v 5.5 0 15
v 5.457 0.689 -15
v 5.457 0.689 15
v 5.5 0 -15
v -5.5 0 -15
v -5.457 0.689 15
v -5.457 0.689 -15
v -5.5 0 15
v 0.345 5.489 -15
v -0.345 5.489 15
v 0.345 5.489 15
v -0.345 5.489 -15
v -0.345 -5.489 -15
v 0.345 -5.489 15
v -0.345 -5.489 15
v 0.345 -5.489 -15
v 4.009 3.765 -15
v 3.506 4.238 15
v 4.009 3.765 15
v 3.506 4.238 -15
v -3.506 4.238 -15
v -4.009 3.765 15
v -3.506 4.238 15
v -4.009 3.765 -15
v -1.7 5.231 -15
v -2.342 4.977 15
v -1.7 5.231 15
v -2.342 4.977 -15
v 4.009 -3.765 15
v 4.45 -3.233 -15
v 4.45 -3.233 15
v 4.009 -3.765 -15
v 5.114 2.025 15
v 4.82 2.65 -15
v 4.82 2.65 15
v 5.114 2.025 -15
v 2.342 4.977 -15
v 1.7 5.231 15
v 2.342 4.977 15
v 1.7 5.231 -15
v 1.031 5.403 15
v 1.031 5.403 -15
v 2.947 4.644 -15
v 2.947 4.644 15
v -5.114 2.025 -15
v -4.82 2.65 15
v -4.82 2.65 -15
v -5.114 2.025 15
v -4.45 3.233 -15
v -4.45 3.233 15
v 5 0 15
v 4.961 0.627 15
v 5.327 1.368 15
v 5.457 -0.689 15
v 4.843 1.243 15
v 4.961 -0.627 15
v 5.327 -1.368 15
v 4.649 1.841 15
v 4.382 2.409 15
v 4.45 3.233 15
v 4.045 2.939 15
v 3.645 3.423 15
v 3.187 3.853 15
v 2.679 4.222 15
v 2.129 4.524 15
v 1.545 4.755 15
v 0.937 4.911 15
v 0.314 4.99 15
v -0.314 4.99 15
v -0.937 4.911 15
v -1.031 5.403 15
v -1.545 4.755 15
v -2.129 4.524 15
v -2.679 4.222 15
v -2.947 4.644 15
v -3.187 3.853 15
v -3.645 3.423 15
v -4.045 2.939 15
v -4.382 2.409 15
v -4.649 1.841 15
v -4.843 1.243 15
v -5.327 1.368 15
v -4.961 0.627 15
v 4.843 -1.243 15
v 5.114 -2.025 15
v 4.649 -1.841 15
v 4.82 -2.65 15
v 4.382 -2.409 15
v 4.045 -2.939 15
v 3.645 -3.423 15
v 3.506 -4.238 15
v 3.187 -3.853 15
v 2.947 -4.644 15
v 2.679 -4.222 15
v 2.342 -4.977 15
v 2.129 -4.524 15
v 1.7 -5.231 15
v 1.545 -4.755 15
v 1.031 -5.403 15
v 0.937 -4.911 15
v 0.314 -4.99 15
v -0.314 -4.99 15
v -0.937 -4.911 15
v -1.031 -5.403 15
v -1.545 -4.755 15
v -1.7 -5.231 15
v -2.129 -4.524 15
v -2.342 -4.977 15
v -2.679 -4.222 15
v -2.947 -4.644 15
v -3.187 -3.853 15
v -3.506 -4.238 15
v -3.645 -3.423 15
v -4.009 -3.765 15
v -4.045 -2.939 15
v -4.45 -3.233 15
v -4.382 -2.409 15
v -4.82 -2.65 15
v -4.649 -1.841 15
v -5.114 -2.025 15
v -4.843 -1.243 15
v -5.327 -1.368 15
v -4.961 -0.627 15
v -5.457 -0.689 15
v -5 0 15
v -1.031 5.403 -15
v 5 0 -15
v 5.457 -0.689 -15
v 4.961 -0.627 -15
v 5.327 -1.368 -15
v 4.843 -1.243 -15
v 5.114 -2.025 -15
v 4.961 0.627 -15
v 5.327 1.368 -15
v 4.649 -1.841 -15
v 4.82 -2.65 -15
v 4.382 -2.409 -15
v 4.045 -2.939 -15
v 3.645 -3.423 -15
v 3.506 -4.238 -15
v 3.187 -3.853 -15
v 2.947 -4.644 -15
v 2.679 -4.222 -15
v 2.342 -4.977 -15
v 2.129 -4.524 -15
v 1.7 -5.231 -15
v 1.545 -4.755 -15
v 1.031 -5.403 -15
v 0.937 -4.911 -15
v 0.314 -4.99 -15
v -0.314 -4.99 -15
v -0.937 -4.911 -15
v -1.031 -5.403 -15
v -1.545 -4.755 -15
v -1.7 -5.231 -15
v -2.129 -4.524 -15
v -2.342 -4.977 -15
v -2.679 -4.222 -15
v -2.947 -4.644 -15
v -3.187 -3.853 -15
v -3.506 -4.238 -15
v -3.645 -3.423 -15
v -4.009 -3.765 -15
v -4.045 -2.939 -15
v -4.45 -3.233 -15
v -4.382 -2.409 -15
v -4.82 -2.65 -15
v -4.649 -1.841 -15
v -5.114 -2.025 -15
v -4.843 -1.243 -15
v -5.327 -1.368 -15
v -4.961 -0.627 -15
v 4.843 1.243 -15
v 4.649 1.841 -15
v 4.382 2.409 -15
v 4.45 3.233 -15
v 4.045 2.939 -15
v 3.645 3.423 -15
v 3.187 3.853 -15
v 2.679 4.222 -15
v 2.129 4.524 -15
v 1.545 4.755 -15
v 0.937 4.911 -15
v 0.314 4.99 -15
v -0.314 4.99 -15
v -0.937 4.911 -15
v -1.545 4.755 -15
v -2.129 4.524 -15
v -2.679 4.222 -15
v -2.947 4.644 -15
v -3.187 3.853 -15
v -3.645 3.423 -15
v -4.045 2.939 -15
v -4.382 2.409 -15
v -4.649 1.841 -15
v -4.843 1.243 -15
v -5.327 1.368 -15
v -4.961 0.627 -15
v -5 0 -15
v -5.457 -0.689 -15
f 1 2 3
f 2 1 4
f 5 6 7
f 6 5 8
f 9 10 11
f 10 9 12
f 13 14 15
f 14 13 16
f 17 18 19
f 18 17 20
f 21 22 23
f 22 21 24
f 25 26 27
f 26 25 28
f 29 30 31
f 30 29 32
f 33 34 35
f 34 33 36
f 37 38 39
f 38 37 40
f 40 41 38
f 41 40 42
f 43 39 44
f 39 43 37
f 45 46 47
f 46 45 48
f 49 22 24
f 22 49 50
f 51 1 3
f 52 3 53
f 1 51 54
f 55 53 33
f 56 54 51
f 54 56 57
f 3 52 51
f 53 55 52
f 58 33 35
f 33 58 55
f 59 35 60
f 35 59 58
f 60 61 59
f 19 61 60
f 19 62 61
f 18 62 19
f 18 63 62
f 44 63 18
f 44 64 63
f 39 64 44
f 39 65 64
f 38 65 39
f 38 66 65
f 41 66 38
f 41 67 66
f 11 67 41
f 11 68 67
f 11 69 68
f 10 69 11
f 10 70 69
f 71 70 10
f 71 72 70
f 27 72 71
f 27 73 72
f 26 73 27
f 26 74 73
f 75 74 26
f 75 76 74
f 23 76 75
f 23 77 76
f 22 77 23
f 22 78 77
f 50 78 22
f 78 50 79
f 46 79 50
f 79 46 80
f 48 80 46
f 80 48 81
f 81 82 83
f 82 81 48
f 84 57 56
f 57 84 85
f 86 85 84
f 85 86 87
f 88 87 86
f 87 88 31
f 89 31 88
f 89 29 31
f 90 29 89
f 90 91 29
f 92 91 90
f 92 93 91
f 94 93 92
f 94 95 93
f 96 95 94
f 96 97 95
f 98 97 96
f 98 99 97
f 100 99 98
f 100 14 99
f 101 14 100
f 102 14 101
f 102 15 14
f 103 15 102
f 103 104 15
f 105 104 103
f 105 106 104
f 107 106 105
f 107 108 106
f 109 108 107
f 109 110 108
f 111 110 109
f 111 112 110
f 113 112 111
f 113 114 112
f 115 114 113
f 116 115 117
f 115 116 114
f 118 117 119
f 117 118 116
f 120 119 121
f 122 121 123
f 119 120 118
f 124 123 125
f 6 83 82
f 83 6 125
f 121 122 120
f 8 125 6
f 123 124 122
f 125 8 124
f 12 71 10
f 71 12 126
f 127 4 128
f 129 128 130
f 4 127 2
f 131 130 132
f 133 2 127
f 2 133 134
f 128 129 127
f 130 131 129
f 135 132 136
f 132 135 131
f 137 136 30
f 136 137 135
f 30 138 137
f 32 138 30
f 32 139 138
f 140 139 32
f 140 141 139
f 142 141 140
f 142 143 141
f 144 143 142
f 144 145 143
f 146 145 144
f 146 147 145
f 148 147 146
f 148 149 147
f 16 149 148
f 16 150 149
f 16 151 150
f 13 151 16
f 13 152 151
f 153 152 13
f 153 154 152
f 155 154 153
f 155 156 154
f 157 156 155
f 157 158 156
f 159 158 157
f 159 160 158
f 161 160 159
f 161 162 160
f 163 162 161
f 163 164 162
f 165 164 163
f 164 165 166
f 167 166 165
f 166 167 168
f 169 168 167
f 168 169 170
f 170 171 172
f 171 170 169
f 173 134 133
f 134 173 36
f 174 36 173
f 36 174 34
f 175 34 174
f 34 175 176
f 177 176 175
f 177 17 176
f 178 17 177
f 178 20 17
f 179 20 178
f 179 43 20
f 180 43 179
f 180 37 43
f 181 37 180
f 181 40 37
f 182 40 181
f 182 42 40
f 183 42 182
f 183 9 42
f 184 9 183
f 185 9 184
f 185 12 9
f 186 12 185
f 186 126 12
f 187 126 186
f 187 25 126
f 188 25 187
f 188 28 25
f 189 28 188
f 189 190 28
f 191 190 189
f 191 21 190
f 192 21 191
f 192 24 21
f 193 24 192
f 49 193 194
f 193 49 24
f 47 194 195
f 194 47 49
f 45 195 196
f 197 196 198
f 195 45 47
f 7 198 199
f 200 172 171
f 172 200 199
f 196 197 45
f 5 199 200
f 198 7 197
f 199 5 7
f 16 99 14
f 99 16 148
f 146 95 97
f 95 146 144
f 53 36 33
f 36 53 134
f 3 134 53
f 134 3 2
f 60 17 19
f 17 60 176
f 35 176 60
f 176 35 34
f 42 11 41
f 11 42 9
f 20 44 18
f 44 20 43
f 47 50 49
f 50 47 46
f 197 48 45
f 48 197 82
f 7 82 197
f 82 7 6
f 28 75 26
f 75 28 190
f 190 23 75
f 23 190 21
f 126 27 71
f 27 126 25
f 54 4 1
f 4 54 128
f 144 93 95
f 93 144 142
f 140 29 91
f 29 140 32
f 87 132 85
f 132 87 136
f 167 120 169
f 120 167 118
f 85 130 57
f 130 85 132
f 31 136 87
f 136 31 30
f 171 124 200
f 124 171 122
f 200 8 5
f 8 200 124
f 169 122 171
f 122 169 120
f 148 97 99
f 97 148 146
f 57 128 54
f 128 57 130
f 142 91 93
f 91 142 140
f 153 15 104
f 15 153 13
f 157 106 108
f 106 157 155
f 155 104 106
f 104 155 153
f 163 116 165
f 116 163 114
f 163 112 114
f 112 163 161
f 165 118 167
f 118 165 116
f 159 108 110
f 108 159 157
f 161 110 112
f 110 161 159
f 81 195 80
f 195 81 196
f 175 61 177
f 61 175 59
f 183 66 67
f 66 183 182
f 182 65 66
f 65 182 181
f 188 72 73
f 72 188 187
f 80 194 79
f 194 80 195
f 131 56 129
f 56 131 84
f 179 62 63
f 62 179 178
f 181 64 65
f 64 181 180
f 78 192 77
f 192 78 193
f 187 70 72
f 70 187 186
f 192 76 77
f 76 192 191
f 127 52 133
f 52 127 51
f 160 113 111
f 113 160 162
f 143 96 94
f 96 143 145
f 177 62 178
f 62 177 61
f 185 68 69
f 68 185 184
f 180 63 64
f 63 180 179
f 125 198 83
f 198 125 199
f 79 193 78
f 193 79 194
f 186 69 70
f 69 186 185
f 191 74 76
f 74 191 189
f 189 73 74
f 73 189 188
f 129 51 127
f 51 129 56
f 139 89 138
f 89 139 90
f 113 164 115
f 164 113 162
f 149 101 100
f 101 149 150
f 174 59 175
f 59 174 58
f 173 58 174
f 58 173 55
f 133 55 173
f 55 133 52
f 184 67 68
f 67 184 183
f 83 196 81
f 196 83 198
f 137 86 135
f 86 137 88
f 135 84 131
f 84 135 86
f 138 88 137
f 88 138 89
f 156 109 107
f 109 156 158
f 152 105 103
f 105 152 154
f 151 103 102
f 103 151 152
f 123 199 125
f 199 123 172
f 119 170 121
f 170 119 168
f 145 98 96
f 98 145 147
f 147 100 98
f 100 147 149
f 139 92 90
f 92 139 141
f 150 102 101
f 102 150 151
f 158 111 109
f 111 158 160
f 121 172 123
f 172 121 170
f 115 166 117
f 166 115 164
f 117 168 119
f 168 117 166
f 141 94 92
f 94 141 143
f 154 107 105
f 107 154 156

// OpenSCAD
$fn = 50;


difference() {
	union() {
		translate(v = [0, 0, -15.0000000000]) {
			cylinder(h = 30, r = 5.5000000000);
		}
	}
	union() {
		translate(v = [0, 0, -100.0000000000]) {
			cylinder(h = 200, r = 5);
		}
	}
}
